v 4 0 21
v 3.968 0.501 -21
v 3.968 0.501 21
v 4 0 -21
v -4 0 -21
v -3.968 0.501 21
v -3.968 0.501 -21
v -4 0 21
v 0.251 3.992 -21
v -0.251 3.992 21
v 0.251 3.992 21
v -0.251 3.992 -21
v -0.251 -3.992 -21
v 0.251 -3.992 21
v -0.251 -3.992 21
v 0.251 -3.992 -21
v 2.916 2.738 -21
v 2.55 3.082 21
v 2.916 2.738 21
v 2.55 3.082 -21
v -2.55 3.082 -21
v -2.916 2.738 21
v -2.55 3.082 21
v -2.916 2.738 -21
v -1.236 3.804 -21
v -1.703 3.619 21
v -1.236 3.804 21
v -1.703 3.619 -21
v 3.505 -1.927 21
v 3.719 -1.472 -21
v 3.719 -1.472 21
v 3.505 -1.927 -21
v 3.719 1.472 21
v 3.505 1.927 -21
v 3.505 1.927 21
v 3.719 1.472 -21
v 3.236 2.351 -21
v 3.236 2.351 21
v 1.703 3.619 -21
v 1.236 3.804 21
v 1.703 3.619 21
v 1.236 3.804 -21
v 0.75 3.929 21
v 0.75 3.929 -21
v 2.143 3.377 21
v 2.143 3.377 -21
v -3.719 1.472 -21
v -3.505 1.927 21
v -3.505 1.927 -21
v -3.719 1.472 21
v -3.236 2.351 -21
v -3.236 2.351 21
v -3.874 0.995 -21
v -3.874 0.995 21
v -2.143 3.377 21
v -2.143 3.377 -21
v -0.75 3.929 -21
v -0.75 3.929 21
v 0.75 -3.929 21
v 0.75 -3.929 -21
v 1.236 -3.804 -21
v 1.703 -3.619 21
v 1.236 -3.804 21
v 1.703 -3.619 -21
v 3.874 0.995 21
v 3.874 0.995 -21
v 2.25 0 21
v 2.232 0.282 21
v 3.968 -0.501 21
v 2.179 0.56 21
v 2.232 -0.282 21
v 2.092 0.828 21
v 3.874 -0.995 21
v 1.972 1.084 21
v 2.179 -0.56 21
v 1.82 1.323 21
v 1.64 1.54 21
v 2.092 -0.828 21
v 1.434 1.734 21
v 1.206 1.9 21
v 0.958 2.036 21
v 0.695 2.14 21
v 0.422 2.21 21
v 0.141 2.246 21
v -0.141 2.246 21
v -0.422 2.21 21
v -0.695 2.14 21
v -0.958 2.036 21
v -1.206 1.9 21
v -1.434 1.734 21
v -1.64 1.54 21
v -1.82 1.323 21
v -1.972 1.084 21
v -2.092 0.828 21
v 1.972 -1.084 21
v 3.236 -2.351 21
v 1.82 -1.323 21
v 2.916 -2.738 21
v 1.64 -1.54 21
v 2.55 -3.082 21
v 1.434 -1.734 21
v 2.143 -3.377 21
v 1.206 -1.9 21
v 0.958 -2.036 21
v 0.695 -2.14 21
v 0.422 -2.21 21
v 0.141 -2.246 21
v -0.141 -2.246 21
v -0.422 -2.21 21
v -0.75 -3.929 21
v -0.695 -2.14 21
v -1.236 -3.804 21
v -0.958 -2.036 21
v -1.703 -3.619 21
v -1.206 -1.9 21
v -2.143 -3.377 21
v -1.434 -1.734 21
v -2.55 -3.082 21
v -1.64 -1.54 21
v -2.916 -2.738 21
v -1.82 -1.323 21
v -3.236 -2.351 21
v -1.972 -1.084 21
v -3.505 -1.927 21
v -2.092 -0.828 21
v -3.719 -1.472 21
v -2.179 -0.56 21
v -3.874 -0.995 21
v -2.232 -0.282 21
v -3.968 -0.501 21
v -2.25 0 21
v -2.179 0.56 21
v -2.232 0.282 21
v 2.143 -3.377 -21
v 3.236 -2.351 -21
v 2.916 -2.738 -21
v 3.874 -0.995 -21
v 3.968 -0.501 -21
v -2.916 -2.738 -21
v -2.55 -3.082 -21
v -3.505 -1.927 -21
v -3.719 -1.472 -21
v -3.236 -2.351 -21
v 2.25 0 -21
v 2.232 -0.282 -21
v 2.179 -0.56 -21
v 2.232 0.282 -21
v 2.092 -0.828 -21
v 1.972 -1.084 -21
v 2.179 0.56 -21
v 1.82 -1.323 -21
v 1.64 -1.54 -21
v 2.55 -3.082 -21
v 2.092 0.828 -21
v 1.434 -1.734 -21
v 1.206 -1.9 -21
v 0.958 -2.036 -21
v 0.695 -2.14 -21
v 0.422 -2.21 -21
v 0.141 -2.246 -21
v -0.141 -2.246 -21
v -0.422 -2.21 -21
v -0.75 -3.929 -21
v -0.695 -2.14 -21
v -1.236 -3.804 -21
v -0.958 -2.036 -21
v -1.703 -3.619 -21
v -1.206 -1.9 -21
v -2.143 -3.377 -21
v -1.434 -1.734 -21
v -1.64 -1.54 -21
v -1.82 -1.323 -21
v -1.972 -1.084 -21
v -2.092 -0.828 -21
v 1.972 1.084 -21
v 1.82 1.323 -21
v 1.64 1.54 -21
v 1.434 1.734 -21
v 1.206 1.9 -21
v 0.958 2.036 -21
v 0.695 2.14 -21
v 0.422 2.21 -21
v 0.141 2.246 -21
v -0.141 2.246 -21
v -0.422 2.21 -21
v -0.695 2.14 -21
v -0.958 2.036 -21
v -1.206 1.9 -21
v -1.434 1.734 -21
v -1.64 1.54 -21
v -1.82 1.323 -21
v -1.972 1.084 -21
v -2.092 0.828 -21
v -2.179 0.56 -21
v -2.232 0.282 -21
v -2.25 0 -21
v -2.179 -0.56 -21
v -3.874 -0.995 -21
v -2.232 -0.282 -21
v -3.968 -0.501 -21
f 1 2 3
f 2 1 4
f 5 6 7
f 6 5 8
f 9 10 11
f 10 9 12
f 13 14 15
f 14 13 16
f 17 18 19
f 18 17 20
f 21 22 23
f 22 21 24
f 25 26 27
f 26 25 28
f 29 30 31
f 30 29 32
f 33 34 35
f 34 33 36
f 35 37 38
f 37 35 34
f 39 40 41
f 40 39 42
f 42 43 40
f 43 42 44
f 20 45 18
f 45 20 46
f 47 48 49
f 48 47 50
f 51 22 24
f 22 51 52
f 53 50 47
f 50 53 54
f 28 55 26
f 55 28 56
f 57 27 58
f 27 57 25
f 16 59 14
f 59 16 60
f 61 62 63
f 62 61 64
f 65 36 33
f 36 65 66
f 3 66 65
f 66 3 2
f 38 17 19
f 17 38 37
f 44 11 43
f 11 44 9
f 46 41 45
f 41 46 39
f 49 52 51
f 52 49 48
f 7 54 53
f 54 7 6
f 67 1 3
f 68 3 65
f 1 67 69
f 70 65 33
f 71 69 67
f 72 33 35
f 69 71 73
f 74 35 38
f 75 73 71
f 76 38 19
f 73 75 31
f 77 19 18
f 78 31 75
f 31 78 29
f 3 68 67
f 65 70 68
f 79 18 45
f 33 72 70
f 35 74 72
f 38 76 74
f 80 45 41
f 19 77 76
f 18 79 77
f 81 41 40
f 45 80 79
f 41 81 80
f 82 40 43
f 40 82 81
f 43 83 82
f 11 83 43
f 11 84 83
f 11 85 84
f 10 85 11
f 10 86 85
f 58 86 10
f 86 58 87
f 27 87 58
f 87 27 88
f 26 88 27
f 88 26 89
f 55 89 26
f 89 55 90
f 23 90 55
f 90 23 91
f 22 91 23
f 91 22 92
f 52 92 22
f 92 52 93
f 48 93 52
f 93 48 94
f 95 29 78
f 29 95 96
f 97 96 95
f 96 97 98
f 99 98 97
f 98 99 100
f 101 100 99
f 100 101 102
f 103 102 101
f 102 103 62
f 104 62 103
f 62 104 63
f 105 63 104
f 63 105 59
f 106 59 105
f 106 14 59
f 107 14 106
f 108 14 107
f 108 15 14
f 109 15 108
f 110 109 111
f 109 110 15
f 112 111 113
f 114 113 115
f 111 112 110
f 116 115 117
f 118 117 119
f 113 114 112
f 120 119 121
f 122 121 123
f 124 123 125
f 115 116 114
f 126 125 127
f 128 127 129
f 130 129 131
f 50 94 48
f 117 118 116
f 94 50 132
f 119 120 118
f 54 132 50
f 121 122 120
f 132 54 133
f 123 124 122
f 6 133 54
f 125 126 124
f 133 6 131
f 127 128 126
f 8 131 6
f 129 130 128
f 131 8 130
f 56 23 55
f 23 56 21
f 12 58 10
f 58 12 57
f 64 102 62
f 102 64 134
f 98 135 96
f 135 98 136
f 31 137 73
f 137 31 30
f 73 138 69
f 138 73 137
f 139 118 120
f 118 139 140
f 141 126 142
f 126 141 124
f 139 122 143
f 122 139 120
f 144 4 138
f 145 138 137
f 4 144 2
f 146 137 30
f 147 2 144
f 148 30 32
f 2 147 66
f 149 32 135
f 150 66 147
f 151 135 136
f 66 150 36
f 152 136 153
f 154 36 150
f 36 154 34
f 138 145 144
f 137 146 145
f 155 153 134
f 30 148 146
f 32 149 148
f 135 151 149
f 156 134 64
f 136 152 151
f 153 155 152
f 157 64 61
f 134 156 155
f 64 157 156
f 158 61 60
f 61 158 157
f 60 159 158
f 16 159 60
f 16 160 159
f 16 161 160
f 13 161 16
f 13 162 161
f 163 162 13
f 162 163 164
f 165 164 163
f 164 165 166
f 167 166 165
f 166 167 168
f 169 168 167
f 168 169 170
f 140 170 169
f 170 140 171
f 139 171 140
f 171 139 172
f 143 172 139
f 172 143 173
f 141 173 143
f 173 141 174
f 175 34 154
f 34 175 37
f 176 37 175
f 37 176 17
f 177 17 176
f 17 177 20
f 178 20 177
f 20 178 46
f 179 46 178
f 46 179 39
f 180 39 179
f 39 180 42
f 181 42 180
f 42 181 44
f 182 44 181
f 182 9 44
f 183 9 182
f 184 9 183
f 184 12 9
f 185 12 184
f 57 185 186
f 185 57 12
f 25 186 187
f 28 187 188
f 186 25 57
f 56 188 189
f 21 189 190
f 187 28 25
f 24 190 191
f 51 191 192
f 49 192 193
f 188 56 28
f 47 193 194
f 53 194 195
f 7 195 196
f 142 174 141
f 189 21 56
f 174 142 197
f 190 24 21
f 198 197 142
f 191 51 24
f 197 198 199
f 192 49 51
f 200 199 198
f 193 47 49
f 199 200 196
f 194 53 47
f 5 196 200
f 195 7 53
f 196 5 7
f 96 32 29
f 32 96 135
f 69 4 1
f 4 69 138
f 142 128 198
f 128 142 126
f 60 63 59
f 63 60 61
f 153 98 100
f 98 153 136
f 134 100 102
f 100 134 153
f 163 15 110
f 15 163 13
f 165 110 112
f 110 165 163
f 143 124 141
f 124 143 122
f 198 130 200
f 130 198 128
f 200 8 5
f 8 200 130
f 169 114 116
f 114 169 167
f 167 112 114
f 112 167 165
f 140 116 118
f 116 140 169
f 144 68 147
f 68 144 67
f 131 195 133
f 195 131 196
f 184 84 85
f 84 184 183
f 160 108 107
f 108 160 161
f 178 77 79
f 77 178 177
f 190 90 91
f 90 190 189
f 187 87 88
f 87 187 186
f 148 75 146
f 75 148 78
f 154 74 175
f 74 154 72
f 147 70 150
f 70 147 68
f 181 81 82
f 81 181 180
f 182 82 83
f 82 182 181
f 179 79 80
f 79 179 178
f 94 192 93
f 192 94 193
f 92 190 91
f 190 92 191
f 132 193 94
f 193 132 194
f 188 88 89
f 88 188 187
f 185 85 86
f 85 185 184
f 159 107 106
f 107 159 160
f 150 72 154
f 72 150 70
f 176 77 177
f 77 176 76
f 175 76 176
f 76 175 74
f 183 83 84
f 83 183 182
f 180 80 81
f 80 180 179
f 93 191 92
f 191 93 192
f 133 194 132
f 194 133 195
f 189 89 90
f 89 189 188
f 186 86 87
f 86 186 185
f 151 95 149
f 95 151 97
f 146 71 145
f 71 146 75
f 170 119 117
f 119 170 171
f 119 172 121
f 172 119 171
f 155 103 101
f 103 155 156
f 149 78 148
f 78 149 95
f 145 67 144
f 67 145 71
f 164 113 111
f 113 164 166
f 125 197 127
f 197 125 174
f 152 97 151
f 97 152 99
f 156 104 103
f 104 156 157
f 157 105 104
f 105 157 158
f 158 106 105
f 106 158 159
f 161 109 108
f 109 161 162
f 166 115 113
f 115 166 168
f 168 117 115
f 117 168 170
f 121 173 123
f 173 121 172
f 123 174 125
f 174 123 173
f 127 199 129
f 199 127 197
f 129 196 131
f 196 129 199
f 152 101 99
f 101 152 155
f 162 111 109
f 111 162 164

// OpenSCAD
$fn = 50;


difference() {
	union() {
		translate(v = [0, 0, -21.0000000000]) {
			cylinder(h = 42, r = 4.0000000000);
		}
	}
	union() {
		translate(v = [0, 0, -100.0000000000]) {
			cylinder(h = 200, r = 2.2500000000);
		}
	}
}
